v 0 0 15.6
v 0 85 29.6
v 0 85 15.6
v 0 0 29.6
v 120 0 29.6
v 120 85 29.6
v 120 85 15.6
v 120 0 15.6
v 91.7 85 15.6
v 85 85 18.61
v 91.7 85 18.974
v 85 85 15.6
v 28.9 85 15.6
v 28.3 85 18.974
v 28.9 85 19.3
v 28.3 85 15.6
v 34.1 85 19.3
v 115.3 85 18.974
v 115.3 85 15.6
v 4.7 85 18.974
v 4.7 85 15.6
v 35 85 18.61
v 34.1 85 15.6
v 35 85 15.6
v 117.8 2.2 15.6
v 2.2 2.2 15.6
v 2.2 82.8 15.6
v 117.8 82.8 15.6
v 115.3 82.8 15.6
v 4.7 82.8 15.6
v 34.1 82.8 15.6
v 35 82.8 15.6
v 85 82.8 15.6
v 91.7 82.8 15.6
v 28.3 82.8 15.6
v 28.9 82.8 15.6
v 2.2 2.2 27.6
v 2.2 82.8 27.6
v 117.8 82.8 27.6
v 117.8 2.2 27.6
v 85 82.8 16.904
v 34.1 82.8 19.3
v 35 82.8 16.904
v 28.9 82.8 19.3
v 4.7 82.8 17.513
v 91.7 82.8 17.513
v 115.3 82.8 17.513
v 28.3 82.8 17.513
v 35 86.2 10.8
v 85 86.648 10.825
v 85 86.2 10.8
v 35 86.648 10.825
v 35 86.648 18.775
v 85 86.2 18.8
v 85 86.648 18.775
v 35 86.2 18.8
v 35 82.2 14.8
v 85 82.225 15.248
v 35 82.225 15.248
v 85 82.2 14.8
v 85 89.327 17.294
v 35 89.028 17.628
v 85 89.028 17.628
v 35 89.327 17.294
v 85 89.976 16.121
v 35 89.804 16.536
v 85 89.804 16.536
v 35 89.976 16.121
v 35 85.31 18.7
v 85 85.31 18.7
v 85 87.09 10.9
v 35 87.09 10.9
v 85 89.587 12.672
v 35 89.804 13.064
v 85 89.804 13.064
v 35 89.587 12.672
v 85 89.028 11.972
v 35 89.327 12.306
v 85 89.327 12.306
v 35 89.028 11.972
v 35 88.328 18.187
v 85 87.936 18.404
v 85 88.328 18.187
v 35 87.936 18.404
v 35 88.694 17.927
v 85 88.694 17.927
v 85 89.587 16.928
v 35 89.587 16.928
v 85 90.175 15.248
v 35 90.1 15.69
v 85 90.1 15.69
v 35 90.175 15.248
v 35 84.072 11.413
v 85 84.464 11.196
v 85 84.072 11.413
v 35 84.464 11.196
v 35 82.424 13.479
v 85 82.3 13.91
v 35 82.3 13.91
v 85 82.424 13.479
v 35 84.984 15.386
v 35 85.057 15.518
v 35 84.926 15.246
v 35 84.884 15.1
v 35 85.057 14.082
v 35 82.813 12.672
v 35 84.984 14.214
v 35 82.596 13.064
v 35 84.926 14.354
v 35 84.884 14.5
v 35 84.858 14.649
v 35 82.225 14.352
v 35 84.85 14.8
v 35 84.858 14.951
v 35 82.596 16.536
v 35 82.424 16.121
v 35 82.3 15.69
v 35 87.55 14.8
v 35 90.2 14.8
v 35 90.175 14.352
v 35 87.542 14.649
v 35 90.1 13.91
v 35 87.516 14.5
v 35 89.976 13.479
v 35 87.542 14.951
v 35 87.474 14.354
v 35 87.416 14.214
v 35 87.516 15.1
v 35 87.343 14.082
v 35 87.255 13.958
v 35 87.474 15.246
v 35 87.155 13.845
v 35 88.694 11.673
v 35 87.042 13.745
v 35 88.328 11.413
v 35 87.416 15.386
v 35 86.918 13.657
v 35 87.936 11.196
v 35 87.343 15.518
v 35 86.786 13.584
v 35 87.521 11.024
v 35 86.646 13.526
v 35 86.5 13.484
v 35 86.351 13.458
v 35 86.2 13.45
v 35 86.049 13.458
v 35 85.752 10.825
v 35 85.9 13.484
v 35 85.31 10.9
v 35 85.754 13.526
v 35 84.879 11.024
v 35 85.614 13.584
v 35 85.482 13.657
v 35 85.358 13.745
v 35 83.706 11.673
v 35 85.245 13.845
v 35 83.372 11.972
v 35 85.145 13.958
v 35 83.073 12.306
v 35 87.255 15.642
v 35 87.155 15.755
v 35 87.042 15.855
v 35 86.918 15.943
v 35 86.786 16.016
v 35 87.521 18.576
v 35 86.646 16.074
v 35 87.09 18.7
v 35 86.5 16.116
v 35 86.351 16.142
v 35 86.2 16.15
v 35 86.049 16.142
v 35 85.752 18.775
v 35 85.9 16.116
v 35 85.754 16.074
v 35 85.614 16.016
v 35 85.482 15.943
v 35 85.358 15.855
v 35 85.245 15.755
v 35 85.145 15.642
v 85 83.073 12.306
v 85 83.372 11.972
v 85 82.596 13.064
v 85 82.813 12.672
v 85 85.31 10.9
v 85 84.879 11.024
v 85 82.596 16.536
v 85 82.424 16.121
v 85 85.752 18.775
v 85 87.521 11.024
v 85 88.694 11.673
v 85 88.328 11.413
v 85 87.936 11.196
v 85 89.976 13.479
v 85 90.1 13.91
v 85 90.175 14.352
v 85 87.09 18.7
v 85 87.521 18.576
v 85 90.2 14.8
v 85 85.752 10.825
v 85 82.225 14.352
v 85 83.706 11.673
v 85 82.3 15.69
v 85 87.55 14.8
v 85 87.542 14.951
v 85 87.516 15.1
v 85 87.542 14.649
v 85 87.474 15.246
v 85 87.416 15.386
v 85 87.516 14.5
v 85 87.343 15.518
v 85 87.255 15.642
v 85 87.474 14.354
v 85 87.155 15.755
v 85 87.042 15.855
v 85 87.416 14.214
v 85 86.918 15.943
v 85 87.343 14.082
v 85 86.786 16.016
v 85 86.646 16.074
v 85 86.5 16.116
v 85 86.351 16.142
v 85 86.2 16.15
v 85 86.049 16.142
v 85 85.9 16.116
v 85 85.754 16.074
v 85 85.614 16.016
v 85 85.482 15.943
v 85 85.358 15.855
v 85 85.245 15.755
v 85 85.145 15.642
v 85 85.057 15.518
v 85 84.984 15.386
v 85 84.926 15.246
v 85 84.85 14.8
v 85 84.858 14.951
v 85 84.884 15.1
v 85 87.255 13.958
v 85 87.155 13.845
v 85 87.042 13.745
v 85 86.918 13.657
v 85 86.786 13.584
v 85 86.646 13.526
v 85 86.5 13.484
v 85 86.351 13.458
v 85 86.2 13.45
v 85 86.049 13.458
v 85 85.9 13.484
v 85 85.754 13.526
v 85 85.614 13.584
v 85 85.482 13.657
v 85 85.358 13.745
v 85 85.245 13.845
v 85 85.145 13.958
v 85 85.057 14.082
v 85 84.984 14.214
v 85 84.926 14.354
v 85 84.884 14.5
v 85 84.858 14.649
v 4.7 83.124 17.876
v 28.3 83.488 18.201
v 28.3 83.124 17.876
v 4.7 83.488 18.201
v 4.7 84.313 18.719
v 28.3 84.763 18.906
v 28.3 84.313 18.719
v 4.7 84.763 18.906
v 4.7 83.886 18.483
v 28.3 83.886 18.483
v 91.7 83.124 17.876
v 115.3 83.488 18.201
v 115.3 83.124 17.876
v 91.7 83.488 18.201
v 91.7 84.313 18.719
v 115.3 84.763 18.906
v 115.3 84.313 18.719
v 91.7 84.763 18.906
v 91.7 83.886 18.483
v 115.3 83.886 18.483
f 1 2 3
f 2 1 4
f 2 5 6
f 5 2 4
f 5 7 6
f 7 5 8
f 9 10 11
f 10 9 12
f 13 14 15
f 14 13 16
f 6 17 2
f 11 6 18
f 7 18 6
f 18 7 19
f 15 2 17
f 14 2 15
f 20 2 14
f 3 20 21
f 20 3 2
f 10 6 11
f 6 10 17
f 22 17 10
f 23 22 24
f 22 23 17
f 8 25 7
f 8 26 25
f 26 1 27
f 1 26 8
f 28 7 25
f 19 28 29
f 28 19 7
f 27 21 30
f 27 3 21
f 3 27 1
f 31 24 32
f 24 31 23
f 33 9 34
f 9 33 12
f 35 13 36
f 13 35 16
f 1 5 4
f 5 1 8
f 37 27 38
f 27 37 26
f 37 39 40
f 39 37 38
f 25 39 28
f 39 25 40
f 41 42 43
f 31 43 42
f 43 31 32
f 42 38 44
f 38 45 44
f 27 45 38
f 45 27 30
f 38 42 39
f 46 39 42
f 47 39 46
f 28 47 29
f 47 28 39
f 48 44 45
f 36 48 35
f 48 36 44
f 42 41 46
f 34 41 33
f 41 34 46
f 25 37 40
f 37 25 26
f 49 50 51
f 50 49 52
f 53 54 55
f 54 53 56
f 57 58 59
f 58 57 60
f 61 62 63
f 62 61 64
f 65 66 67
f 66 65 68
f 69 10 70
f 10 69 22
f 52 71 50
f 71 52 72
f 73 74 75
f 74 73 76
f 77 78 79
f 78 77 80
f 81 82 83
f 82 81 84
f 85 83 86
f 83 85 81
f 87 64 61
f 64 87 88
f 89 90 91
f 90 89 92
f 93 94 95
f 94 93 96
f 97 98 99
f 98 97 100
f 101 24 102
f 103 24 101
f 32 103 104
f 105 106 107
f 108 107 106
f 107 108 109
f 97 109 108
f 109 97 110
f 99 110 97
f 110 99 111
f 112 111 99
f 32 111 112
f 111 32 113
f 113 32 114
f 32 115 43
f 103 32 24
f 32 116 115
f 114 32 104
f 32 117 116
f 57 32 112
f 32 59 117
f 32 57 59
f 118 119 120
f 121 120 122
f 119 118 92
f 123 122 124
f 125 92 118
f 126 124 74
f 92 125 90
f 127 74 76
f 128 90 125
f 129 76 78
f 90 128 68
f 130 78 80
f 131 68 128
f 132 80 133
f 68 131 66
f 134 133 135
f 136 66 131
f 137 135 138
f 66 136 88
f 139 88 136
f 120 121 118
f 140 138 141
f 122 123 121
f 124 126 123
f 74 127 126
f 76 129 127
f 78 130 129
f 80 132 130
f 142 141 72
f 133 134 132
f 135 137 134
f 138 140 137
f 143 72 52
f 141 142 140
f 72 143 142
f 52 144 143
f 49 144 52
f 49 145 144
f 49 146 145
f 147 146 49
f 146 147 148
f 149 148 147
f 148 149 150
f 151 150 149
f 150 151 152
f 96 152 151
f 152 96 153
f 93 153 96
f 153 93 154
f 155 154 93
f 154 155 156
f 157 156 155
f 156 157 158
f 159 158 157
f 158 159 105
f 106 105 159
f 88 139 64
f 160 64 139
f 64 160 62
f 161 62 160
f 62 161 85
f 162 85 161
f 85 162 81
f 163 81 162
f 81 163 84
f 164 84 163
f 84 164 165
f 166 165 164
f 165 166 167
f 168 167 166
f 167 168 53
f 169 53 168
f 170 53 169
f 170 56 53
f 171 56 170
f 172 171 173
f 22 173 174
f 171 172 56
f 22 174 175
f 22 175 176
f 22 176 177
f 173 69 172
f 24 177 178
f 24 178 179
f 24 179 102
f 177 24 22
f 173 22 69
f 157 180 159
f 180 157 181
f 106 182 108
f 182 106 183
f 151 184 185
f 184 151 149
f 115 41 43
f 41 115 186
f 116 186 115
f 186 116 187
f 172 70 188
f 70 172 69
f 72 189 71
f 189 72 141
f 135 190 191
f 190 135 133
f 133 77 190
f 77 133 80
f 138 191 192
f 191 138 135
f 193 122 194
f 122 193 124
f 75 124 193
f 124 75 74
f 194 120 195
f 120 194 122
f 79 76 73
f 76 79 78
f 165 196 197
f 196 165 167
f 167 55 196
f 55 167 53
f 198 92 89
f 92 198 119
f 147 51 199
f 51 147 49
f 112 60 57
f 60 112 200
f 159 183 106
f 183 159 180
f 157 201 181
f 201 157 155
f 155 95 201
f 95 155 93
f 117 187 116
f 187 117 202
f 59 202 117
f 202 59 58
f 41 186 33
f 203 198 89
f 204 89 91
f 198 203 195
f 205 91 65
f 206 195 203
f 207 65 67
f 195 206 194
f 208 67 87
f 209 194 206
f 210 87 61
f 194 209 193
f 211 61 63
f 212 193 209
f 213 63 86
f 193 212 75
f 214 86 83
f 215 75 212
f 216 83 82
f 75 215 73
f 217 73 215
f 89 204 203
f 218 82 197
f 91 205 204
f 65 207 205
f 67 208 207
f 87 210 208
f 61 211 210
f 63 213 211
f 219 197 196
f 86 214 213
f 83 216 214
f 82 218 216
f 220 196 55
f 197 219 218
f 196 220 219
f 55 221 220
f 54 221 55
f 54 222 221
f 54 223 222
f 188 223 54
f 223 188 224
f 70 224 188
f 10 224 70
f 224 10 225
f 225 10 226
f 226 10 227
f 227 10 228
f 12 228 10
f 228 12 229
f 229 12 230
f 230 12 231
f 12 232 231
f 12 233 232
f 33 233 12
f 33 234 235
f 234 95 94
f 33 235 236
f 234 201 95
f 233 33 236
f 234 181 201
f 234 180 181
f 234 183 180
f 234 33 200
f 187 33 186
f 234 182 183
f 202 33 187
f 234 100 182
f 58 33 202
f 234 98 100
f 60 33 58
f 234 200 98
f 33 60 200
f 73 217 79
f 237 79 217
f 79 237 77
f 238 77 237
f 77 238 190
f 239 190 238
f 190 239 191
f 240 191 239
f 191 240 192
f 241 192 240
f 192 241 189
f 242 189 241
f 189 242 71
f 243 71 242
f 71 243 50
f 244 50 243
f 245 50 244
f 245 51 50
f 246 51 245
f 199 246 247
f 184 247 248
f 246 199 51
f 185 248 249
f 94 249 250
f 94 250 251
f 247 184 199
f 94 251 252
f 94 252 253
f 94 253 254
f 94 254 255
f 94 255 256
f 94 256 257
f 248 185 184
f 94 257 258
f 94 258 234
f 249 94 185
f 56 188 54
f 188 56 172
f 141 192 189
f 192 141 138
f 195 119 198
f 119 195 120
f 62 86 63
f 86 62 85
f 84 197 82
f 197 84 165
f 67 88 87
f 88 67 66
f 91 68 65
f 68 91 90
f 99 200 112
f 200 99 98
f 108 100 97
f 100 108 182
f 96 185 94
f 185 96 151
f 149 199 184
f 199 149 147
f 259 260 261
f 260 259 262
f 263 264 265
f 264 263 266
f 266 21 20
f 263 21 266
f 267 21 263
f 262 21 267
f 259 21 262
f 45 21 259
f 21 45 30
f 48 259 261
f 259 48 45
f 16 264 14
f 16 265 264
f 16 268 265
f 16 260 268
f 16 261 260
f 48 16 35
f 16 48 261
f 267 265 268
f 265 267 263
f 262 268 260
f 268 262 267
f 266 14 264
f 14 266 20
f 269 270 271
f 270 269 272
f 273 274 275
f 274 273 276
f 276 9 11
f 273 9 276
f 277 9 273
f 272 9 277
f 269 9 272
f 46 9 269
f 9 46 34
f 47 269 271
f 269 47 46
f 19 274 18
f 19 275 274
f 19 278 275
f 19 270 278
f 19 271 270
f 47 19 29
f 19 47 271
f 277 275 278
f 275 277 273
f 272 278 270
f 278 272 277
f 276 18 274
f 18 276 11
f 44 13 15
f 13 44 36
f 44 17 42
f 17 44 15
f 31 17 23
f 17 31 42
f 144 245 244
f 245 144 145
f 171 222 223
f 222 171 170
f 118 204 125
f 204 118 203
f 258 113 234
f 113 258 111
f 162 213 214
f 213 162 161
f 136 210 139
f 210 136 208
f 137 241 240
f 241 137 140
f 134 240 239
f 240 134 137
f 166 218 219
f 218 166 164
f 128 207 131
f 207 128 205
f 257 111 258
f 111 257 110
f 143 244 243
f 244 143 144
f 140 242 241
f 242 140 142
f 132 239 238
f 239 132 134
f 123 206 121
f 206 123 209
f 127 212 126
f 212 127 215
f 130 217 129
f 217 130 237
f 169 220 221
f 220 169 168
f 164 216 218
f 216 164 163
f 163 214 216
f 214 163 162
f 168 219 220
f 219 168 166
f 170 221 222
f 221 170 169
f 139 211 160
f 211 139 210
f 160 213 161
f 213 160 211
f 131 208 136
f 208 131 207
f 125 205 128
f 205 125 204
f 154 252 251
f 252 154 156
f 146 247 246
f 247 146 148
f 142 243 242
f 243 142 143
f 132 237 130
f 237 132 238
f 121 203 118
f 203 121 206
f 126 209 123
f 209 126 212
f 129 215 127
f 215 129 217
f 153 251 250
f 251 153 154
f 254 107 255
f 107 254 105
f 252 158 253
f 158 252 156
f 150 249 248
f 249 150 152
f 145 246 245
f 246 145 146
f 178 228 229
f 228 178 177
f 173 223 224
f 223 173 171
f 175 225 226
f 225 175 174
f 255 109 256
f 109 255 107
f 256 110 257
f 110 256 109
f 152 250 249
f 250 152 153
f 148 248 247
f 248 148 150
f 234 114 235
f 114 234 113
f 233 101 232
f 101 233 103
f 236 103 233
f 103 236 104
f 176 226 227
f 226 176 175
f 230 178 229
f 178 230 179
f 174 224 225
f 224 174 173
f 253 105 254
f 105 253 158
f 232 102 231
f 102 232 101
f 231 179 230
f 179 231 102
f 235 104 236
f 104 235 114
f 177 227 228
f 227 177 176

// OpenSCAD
// Generated by Mecha-Splicer: clamshell_terminal v1
// Dimension-based CAD ONLY: unknown PCB screw positions, USB access and real fit.
// lid / display tray (down-facing open pocket at closed angle), all dimensions in mm
$fn=56;
W=120.0; D=85.0; wall=2.2; floor=2.0;
HBASE=14.0; HLID=14.0; gap=1.6;
hy=86.2; hz=14.8;
kr=4.0; bore=2.7;

module lid_shell() {
  difference() {
    union() {
      difference() {
        translate([0,0,15.6]) cube([W,D,HLID]);
        translate([wall,wall,15.5]) cube([W-2*wall,D-2*wall,HLID-floor+0.1]);
      }
      translate([35.0,hy,hz]) rotate([0,90,0]) cylinder(h=50.0,r=kr);
    }
    // Lid-side four-wire cable entry (opposed to left-side base slot)
    translate([28.9,82.7,15.5]) cube([5.2,2.4000000000000004,3.8000000000000003]);
    // Relief for two base knuckles entering lid rear wall at all open angles
    for (x=[4.7,91.7]) translate([x,hy,hz]) rotate([0,90,0]) cylinder(h=23.6,r=4.35);
    translate([34.8,hy,hz]) rotate([0,90,0]) cylinder(h=50.4,d=bore);
  }
}
lid_shell();
